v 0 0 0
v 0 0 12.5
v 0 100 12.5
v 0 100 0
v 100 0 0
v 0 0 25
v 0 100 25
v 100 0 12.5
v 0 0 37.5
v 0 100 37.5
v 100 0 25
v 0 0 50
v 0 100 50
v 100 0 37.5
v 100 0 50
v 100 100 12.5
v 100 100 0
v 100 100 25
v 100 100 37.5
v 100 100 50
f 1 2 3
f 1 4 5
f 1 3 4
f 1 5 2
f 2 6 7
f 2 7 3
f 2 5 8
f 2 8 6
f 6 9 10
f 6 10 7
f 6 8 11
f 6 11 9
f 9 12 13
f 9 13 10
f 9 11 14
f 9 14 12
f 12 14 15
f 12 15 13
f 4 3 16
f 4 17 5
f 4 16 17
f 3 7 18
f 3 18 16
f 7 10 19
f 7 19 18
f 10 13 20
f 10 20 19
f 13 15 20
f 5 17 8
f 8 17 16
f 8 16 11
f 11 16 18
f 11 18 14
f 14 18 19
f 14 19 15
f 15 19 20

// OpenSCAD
// Start: lazy_union
default_5_default_5();
// End: lazy_union

// Modules.

// 'PartMaterial undef-default - default 5.0'
module default_5_default_5() {
  // 'None : _combine_solids_and_holes'
  union() {
    // 'example2 : _combine_solids_and_holes'
    union() {
      // 'example2'
      linear_extrude(height=50.0, twist=0.0, slices=4, scale=[1.0, 1.0]) {
        polygon(points=[[0.0, 0.0], [0.0, 100.0], [100.0, 100.0], [100.0, 0.0]]);
      }
    }
  }
} // end module default_5_default_5
